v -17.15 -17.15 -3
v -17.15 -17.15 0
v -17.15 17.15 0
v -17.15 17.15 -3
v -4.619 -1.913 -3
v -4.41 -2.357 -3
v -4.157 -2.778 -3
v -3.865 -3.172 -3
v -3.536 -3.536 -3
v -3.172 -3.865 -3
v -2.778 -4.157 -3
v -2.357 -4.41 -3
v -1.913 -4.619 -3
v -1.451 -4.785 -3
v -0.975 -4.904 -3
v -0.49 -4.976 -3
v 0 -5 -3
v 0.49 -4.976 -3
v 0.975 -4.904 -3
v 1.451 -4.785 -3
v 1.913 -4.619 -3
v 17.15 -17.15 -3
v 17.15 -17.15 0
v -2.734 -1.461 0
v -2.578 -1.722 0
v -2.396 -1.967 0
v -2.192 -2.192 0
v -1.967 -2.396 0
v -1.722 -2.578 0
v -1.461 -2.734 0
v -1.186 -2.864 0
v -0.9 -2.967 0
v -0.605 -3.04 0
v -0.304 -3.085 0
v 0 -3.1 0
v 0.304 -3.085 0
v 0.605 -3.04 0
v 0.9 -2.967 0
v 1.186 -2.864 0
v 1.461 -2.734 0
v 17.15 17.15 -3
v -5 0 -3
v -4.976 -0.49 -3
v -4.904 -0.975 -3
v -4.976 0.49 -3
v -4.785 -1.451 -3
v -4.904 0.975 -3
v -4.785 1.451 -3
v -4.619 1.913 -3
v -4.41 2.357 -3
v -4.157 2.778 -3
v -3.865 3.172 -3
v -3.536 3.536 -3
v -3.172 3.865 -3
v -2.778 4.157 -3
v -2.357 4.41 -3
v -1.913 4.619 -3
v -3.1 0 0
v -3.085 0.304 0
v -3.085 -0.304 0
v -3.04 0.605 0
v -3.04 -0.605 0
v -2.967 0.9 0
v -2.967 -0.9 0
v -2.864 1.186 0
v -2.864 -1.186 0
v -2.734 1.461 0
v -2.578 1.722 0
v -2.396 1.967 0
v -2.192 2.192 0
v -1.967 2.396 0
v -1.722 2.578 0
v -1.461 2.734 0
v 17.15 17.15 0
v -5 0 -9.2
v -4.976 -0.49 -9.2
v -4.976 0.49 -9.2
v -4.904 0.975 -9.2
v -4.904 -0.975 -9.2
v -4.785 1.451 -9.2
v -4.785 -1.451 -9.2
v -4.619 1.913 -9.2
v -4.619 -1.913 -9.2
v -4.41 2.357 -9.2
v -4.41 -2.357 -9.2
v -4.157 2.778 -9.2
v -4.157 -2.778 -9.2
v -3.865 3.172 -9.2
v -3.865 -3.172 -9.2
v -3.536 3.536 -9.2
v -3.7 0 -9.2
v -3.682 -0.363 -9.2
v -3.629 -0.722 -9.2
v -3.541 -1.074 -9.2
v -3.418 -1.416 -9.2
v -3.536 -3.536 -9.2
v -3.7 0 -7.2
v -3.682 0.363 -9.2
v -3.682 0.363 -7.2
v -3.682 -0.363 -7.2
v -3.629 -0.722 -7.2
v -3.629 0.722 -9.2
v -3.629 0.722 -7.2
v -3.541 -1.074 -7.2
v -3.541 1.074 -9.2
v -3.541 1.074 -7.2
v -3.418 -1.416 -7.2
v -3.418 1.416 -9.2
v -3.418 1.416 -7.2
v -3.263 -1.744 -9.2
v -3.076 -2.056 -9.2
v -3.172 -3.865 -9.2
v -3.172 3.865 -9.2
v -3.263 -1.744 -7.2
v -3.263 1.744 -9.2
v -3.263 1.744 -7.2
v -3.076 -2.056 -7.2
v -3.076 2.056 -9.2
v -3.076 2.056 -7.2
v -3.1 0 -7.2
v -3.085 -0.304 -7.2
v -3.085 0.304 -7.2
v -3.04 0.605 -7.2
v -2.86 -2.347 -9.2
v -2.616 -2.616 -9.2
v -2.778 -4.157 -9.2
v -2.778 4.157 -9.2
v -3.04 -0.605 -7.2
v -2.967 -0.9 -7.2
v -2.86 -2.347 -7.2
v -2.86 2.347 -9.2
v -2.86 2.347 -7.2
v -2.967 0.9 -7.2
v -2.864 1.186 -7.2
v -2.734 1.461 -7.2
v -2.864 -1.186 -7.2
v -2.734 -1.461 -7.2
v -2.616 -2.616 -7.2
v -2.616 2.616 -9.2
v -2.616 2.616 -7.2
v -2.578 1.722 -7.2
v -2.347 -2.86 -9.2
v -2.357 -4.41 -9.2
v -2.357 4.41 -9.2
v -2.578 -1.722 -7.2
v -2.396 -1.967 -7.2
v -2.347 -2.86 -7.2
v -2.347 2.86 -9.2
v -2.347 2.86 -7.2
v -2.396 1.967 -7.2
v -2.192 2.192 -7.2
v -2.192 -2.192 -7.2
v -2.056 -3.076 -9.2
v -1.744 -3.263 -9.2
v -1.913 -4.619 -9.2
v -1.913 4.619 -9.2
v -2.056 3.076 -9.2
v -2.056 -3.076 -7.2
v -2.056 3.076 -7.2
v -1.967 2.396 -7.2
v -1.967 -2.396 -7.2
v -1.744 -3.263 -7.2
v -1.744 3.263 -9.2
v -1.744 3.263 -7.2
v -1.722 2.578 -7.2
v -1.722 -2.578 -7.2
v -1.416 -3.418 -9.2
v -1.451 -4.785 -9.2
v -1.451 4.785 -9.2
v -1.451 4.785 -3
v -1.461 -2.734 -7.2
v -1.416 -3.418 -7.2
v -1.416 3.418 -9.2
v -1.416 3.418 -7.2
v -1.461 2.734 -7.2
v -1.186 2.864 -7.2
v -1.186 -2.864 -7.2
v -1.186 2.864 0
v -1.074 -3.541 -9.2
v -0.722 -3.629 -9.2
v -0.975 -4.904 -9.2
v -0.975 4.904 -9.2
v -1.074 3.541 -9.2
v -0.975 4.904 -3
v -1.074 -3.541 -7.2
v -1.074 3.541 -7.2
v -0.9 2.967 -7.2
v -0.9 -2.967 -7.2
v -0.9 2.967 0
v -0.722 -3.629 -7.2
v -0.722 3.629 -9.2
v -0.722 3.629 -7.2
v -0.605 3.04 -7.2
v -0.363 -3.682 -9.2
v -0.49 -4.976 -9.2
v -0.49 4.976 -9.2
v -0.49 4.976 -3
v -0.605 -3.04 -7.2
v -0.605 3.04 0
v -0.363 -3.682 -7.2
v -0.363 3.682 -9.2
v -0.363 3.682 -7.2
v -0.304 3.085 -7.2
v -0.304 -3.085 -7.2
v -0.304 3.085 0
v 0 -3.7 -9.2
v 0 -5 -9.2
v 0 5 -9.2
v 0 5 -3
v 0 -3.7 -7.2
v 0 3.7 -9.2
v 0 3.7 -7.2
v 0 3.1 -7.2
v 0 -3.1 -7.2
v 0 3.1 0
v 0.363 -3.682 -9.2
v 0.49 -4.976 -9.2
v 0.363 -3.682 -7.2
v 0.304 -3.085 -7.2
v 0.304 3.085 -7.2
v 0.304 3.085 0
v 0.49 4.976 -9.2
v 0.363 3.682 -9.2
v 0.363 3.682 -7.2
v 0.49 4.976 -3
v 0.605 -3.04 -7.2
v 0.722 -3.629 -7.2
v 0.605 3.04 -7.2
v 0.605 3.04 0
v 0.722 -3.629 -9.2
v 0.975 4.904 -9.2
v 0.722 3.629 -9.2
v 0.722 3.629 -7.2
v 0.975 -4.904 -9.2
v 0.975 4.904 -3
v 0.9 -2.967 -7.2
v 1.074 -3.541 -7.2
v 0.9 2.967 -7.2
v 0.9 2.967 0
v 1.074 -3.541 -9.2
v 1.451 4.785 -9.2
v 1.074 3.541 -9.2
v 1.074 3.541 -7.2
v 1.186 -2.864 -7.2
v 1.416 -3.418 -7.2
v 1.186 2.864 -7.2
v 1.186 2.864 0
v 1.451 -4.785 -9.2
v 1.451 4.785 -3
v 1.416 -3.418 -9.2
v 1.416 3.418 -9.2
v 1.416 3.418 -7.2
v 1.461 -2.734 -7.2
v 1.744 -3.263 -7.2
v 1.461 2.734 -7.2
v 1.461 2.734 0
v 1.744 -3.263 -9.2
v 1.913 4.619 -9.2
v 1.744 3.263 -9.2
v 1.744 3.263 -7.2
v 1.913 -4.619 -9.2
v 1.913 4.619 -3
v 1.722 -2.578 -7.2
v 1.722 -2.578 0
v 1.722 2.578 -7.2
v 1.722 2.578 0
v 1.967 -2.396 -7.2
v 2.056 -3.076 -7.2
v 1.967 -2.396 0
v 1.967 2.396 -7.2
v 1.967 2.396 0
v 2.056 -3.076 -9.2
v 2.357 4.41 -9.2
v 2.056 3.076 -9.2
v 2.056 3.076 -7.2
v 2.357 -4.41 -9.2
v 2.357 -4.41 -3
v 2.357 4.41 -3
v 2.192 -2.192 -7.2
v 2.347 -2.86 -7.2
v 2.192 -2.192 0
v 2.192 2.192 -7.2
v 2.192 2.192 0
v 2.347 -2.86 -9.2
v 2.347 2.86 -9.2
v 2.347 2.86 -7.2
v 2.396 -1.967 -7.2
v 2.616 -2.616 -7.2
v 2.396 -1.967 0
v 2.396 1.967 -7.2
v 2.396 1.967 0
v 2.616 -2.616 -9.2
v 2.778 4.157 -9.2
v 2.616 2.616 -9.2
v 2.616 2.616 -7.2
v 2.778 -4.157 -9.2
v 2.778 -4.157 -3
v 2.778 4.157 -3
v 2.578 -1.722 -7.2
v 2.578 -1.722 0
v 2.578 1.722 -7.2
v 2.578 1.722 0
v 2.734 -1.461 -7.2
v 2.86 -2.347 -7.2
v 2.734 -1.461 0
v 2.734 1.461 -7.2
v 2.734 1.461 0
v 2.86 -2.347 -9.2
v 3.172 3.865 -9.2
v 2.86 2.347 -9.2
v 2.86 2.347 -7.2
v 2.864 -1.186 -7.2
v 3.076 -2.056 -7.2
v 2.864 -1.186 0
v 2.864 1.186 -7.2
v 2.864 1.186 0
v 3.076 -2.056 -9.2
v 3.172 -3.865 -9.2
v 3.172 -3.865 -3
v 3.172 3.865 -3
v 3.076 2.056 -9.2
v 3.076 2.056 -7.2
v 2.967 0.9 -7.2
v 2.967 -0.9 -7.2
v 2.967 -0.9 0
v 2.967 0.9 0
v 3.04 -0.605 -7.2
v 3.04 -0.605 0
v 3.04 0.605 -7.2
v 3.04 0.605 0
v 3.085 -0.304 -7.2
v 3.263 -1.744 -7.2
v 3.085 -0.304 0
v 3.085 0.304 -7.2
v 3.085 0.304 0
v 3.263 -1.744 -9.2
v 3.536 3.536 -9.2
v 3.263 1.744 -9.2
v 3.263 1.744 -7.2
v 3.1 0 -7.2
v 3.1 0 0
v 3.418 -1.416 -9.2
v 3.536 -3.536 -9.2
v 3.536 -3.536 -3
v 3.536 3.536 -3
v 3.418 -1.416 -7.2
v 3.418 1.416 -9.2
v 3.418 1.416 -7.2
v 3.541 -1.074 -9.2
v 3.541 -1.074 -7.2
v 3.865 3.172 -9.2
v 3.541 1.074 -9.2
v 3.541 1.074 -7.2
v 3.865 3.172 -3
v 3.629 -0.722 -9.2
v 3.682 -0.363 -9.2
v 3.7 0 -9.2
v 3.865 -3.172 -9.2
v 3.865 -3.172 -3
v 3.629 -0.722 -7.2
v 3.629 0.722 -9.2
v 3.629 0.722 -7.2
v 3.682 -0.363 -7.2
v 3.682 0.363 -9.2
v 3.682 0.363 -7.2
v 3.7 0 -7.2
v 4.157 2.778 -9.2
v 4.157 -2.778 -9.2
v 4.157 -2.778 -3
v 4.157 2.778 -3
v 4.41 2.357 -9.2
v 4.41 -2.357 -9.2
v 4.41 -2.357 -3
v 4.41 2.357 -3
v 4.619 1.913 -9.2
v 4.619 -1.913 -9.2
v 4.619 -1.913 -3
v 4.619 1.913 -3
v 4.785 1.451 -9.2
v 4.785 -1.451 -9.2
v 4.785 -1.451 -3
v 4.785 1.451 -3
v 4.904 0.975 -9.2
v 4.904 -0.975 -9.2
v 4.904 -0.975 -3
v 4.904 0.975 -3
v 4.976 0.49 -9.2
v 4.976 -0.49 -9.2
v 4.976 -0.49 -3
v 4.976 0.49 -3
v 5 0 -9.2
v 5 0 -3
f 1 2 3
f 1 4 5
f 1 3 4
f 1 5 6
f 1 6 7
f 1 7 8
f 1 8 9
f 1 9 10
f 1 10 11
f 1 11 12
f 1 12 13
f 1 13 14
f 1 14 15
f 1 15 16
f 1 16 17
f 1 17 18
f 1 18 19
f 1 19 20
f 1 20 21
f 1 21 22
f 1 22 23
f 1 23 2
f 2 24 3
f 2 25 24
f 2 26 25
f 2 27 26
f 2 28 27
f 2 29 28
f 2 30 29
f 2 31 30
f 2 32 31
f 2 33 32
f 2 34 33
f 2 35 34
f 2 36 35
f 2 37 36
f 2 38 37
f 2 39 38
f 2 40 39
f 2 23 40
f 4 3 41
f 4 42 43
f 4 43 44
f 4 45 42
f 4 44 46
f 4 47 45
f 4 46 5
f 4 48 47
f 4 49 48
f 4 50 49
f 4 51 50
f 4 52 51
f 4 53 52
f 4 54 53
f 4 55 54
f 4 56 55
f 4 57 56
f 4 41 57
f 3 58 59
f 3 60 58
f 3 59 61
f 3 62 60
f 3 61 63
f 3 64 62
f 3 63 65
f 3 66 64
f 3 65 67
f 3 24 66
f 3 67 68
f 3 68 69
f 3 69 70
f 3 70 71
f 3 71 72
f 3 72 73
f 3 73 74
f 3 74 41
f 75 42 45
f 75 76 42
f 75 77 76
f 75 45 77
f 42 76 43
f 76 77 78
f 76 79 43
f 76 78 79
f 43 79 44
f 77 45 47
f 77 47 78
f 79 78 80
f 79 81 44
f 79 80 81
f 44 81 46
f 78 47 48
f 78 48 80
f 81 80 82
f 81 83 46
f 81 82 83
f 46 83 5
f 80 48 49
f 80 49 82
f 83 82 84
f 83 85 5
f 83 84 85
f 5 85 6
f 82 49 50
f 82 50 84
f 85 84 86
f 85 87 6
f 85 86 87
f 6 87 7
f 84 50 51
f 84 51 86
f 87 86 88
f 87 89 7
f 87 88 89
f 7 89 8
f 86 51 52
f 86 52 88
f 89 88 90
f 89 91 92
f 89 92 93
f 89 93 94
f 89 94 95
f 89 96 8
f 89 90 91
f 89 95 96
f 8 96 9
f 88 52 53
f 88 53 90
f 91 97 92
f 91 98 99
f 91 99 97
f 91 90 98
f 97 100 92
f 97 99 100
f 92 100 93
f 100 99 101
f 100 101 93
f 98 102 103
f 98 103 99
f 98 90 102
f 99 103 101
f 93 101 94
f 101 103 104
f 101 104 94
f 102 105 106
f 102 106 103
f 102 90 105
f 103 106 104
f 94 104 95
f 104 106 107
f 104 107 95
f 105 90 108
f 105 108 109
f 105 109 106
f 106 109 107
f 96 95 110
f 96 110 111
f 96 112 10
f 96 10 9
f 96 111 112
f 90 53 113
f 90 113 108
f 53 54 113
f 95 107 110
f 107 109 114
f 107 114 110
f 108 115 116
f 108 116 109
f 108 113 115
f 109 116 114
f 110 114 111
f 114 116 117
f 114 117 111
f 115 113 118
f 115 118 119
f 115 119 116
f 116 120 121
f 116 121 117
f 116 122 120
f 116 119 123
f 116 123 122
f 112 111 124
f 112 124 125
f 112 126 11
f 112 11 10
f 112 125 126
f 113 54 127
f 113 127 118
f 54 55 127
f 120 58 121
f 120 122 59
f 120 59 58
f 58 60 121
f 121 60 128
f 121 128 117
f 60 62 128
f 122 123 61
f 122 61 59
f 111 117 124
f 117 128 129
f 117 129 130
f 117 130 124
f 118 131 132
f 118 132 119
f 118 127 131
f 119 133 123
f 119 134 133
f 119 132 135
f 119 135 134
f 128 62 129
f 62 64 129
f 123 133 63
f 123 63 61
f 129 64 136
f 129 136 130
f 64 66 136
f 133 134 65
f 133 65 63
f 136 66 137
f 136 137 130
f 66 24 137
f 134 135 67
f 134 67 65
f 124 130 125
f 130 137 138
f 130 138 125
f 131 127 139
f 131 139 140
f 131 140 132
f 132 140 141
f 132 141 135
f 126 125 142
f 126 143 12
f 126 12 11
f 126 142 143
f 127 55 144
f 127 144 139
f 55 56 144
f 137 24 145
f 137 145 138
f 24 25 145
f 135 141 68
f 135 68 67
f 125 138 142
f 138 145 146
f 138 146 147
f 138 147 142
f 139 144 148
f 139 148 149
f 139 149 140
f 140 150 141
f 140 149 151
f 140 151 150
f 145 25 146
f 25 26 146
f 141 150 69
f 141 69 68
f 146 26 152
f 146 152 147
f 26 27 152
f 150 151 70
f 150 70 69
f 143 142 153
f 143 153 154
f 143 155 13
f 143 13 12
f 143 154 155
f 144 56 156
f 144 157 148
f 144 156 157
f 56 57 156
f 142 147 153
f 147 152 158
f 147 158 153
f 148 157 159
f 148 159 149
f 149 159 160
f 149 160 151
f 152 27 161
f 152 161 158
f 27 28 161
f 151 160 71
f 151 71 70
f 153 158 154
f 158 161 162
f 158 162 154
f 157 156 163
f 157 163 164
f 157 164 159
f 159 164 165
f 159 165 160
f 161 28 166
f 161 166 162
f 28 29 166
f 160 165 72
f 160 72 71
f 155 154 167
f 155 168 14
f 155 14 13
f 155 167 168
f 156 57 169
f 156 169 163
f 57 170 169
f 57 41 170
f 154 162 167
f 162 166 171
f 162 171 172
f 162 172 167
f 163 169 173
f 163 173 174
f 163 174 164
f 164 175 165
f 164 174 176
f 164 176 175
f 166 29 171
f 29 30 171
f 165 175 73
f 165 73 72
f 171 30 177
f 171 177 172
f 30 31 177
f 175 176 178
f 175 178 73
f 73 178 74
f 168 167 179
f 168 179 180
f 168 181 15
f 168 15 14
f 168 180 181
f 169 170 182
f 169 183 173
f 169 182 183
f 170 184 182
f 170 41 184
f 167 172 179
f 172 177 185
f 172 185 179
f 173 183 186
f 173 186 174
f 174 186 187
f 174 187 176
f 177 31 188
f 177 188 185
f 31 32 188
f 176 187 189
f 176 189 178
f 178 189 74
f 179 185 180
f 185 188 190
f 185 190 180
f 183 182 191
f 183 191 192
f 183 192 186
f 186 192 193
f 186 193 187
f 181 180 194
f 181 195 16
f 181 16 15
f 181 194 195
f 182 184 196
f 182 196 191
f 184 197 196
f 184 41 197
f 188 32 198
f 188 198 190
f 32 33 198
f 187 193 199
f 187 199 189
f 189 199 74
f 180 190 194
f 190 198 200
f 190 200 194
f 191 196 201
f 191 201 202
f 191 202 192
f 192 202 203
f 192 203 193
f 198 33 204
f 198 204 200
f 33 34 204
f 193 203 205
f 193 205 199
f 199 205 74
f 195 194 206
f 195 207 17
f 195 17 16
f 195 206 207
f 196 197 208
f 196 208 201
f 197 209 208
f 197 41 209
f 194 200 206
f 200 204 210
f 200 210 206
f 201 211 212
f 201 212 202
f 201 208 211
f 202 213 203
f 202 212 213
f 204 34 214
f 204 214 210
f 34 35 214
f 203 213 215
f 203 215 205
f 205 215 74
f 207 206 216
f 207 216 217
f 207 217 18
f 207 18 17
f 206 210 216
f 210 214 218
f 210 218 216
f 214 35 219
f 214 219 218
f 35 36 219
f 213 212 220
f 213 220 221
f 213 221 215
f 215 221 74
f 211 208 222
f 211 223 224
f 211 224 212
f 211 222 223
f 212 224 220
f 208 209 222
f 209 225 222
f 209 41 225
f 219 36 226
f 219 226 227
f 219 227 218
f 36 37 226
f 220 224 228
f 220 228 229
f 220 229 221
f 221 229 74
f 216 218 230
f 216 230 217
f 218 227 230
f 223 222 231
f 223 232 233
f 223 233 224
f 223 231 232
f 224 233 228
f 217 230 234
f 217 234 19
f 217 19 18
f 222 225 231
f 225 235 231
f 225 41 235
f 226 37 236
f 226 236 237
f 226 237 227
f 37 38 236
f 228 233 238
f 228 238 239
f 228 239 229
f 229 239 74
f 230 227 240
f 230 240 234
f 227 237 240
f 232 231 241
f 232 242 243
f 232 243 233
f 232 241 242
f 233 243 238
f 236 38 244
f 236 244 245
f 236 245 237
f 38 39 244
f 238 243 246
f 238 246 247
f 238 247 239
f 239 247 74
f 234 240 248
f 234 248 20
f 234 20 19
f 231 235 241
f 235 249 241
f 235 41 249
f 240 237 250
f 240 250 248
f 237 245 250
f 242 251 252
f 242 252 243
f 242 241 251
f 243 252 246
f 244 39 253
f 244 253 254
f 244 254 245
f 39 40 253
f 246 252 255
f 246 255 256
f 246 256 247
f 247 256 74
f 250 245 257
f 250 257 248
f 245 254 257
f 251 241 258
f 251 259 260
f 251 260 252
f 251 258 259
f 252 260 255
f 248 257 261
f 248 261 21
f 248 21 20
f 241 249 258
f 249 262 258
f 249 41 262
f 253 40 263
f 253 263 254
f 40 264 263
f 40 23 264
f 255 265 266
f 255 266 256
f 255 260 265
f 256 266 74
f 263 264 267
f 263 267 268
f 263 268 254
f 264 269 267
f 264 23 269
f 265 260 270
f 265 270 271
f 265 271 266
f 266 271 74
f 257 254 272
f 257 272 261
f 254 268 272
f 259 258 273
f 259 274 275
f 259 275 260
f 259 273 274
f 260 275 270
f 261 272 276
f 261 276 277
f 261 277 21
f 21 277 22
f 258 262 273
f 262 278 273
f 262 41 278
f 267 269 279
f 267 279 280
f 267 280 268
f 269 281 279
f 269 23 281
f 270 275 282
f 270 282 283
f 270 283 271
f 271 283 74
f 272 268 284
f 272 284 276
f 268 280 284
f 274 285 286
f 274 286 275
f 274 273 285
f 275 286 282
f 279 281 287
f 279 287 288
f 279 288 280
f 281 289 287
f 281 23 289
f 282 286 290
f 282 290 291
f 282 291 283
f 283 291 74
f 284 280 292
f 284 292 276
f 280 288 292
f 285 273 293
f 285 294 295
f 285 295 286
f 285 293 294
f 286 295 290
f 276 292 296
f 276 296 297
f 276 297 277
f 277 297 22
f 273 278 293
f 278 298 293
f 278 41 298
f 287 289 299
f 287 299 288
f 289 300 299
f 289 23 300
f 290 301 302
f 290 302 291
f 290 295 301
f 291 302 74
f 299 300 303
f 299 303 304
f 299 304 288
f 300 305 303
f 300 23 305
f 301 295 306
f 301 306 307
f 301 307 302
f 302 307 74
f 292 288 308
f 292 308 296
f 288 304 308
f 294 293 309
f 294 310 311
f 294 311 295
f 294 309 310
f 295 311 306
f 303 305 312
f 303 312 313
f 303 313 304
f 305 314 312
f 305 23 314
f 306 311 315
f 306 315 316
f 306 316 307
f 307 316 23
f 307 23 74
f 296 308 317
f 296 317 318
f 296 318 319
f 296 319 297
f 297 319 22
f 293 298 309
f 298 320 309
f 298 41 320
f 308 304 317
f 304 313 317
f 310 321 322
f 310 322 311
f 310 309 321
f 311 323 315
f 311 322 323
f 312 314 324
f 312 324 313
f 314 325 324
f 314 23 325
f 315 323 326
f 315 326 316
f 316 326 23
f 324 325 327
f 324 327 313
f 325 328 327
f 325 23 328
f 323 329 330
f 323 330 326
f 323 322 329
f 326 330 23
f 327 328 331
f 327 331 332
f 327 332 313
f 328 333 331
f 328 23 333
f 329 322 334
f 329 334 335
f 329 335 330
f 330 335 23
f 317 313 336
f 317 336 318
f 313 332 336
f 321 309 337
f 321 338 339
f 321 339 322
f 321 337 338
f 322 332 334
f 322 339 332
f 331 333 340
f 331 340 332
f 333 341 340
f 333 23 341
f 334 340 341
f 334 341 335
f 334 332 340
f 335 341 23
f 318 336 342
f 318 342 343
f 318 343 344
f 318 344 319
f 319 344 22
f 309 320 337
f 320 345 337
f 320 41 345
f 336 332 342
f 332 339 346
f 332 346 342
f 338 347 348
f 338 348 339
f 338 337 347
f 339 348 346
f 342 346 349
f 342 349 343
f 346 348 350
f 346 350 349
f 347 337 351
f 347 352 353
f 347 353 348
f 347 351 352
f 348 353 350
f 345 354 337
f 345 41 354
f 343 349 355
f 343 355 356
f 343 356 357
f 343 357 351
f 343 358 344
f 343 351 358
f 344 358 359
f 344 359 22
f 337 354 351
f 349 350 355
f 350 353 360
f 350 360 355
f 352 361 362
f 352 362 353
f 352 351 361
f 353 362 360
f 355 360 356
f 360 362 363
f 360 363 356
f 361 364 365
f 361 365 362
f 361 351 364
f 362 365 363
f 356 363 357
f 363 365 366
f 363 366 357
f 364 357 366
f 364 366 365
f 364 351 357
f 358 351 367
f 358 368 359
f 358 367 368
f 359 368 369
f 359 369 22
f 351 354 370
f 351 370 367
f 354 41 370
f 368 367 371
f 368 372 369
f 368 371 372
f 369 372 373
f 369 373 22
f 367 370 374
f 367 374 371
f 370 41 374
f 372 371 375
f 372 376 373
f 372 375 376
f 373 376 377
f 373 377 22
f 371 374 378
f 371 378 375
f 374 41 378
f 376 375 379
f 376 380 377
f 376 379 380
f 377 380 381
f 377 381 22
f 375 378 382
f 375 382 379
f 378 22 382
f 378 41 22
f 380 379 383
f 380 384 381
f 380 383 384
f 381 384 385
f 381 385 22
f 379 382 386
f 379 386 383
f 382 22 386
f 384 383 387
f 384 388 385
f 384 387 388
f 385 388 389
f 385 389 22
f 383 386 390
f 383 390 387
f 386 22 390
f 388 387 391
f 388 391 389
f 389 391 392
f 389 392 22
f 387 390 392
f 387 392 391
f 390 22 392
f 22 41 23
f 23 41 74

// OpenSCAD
// Start: lazy_union
default_5_default_5();
// End: lazy_union

// Modules.

// 'PartMaterial undef-default - default 5.0'
module default_5_default_5() {
  // 'None : _combine_solids_and_holes'
  union() {
    // '_combine_solids_and_holes'
    difference() {
      // 'default : _combine_solids_and_holes'
      union() {
        // 'outer'
        multmatrix(m=[[1.0, 0.0, 0.0, -17.15], [-0.0, -1.0, -0.0, 17.15], [-0.0, -0.0, -1.0, -0.0], [0.0, 0.0, 0.0, 1.0]]) {
          // 'outer : _combine_solids_and_holes'
          union() {
            // 'outer'
            cube(size=[34.3, 34.3, 3.0]);
          }
        }
        // 'outer_cyl'
        multmatrix(m=[[1.0, 0.0, 0.0, 0.0], [0.0, 1.0, 0.0, 0.0], [0.0, 0.0, 1.0, -9.2], [0.0, 0.0, 0.0, 1.0]]) {
          // 'outer_cyl : _combine_solids_and_holes'
          union() {
            // 'outer_cyl'
            cylinder(h=6.199999999999999, r1=5.0, r2=5.0, center=false, $fn=64);
          }
        }
      }
      // 'default'
      multmatrix(m=[[1.0, 0.0, 0.0, 0.0], [0.0, 1.0, 0.0, 0.0], [0.0, 0.0, 1.0, -9.209999999999999], [0.0, 0.0, 0.0, 1.0]]) {
        // 'shaft : _combine_solids_and_holes'
        union() {
          // 'large : _combine_solids_and_holes'
          union() {
            // 'large'
            cylinder(h=2.01, r1=3.7, r2=3.7, center=false, $fn=64);
          }
          // 'small'
          multmatrix(m=[[1.0, 0.0, 0.0, 0.0], [0.0, 1.0, 0.0, 0.0], [0.0, 0.0, 1.0, 1.9900000000000002], [0.0, 0.0, 0.0, 1.0]]) {
            // 'small : _combine_solids_and_holes'
            union() {
              // 'small'
              cylinder(h=12.209999999999999, r1=3.1, r2=3.1, center=false, $fn=64);
            }
          }
        }
      }
    }
  }
} // end module default_5_default_5
